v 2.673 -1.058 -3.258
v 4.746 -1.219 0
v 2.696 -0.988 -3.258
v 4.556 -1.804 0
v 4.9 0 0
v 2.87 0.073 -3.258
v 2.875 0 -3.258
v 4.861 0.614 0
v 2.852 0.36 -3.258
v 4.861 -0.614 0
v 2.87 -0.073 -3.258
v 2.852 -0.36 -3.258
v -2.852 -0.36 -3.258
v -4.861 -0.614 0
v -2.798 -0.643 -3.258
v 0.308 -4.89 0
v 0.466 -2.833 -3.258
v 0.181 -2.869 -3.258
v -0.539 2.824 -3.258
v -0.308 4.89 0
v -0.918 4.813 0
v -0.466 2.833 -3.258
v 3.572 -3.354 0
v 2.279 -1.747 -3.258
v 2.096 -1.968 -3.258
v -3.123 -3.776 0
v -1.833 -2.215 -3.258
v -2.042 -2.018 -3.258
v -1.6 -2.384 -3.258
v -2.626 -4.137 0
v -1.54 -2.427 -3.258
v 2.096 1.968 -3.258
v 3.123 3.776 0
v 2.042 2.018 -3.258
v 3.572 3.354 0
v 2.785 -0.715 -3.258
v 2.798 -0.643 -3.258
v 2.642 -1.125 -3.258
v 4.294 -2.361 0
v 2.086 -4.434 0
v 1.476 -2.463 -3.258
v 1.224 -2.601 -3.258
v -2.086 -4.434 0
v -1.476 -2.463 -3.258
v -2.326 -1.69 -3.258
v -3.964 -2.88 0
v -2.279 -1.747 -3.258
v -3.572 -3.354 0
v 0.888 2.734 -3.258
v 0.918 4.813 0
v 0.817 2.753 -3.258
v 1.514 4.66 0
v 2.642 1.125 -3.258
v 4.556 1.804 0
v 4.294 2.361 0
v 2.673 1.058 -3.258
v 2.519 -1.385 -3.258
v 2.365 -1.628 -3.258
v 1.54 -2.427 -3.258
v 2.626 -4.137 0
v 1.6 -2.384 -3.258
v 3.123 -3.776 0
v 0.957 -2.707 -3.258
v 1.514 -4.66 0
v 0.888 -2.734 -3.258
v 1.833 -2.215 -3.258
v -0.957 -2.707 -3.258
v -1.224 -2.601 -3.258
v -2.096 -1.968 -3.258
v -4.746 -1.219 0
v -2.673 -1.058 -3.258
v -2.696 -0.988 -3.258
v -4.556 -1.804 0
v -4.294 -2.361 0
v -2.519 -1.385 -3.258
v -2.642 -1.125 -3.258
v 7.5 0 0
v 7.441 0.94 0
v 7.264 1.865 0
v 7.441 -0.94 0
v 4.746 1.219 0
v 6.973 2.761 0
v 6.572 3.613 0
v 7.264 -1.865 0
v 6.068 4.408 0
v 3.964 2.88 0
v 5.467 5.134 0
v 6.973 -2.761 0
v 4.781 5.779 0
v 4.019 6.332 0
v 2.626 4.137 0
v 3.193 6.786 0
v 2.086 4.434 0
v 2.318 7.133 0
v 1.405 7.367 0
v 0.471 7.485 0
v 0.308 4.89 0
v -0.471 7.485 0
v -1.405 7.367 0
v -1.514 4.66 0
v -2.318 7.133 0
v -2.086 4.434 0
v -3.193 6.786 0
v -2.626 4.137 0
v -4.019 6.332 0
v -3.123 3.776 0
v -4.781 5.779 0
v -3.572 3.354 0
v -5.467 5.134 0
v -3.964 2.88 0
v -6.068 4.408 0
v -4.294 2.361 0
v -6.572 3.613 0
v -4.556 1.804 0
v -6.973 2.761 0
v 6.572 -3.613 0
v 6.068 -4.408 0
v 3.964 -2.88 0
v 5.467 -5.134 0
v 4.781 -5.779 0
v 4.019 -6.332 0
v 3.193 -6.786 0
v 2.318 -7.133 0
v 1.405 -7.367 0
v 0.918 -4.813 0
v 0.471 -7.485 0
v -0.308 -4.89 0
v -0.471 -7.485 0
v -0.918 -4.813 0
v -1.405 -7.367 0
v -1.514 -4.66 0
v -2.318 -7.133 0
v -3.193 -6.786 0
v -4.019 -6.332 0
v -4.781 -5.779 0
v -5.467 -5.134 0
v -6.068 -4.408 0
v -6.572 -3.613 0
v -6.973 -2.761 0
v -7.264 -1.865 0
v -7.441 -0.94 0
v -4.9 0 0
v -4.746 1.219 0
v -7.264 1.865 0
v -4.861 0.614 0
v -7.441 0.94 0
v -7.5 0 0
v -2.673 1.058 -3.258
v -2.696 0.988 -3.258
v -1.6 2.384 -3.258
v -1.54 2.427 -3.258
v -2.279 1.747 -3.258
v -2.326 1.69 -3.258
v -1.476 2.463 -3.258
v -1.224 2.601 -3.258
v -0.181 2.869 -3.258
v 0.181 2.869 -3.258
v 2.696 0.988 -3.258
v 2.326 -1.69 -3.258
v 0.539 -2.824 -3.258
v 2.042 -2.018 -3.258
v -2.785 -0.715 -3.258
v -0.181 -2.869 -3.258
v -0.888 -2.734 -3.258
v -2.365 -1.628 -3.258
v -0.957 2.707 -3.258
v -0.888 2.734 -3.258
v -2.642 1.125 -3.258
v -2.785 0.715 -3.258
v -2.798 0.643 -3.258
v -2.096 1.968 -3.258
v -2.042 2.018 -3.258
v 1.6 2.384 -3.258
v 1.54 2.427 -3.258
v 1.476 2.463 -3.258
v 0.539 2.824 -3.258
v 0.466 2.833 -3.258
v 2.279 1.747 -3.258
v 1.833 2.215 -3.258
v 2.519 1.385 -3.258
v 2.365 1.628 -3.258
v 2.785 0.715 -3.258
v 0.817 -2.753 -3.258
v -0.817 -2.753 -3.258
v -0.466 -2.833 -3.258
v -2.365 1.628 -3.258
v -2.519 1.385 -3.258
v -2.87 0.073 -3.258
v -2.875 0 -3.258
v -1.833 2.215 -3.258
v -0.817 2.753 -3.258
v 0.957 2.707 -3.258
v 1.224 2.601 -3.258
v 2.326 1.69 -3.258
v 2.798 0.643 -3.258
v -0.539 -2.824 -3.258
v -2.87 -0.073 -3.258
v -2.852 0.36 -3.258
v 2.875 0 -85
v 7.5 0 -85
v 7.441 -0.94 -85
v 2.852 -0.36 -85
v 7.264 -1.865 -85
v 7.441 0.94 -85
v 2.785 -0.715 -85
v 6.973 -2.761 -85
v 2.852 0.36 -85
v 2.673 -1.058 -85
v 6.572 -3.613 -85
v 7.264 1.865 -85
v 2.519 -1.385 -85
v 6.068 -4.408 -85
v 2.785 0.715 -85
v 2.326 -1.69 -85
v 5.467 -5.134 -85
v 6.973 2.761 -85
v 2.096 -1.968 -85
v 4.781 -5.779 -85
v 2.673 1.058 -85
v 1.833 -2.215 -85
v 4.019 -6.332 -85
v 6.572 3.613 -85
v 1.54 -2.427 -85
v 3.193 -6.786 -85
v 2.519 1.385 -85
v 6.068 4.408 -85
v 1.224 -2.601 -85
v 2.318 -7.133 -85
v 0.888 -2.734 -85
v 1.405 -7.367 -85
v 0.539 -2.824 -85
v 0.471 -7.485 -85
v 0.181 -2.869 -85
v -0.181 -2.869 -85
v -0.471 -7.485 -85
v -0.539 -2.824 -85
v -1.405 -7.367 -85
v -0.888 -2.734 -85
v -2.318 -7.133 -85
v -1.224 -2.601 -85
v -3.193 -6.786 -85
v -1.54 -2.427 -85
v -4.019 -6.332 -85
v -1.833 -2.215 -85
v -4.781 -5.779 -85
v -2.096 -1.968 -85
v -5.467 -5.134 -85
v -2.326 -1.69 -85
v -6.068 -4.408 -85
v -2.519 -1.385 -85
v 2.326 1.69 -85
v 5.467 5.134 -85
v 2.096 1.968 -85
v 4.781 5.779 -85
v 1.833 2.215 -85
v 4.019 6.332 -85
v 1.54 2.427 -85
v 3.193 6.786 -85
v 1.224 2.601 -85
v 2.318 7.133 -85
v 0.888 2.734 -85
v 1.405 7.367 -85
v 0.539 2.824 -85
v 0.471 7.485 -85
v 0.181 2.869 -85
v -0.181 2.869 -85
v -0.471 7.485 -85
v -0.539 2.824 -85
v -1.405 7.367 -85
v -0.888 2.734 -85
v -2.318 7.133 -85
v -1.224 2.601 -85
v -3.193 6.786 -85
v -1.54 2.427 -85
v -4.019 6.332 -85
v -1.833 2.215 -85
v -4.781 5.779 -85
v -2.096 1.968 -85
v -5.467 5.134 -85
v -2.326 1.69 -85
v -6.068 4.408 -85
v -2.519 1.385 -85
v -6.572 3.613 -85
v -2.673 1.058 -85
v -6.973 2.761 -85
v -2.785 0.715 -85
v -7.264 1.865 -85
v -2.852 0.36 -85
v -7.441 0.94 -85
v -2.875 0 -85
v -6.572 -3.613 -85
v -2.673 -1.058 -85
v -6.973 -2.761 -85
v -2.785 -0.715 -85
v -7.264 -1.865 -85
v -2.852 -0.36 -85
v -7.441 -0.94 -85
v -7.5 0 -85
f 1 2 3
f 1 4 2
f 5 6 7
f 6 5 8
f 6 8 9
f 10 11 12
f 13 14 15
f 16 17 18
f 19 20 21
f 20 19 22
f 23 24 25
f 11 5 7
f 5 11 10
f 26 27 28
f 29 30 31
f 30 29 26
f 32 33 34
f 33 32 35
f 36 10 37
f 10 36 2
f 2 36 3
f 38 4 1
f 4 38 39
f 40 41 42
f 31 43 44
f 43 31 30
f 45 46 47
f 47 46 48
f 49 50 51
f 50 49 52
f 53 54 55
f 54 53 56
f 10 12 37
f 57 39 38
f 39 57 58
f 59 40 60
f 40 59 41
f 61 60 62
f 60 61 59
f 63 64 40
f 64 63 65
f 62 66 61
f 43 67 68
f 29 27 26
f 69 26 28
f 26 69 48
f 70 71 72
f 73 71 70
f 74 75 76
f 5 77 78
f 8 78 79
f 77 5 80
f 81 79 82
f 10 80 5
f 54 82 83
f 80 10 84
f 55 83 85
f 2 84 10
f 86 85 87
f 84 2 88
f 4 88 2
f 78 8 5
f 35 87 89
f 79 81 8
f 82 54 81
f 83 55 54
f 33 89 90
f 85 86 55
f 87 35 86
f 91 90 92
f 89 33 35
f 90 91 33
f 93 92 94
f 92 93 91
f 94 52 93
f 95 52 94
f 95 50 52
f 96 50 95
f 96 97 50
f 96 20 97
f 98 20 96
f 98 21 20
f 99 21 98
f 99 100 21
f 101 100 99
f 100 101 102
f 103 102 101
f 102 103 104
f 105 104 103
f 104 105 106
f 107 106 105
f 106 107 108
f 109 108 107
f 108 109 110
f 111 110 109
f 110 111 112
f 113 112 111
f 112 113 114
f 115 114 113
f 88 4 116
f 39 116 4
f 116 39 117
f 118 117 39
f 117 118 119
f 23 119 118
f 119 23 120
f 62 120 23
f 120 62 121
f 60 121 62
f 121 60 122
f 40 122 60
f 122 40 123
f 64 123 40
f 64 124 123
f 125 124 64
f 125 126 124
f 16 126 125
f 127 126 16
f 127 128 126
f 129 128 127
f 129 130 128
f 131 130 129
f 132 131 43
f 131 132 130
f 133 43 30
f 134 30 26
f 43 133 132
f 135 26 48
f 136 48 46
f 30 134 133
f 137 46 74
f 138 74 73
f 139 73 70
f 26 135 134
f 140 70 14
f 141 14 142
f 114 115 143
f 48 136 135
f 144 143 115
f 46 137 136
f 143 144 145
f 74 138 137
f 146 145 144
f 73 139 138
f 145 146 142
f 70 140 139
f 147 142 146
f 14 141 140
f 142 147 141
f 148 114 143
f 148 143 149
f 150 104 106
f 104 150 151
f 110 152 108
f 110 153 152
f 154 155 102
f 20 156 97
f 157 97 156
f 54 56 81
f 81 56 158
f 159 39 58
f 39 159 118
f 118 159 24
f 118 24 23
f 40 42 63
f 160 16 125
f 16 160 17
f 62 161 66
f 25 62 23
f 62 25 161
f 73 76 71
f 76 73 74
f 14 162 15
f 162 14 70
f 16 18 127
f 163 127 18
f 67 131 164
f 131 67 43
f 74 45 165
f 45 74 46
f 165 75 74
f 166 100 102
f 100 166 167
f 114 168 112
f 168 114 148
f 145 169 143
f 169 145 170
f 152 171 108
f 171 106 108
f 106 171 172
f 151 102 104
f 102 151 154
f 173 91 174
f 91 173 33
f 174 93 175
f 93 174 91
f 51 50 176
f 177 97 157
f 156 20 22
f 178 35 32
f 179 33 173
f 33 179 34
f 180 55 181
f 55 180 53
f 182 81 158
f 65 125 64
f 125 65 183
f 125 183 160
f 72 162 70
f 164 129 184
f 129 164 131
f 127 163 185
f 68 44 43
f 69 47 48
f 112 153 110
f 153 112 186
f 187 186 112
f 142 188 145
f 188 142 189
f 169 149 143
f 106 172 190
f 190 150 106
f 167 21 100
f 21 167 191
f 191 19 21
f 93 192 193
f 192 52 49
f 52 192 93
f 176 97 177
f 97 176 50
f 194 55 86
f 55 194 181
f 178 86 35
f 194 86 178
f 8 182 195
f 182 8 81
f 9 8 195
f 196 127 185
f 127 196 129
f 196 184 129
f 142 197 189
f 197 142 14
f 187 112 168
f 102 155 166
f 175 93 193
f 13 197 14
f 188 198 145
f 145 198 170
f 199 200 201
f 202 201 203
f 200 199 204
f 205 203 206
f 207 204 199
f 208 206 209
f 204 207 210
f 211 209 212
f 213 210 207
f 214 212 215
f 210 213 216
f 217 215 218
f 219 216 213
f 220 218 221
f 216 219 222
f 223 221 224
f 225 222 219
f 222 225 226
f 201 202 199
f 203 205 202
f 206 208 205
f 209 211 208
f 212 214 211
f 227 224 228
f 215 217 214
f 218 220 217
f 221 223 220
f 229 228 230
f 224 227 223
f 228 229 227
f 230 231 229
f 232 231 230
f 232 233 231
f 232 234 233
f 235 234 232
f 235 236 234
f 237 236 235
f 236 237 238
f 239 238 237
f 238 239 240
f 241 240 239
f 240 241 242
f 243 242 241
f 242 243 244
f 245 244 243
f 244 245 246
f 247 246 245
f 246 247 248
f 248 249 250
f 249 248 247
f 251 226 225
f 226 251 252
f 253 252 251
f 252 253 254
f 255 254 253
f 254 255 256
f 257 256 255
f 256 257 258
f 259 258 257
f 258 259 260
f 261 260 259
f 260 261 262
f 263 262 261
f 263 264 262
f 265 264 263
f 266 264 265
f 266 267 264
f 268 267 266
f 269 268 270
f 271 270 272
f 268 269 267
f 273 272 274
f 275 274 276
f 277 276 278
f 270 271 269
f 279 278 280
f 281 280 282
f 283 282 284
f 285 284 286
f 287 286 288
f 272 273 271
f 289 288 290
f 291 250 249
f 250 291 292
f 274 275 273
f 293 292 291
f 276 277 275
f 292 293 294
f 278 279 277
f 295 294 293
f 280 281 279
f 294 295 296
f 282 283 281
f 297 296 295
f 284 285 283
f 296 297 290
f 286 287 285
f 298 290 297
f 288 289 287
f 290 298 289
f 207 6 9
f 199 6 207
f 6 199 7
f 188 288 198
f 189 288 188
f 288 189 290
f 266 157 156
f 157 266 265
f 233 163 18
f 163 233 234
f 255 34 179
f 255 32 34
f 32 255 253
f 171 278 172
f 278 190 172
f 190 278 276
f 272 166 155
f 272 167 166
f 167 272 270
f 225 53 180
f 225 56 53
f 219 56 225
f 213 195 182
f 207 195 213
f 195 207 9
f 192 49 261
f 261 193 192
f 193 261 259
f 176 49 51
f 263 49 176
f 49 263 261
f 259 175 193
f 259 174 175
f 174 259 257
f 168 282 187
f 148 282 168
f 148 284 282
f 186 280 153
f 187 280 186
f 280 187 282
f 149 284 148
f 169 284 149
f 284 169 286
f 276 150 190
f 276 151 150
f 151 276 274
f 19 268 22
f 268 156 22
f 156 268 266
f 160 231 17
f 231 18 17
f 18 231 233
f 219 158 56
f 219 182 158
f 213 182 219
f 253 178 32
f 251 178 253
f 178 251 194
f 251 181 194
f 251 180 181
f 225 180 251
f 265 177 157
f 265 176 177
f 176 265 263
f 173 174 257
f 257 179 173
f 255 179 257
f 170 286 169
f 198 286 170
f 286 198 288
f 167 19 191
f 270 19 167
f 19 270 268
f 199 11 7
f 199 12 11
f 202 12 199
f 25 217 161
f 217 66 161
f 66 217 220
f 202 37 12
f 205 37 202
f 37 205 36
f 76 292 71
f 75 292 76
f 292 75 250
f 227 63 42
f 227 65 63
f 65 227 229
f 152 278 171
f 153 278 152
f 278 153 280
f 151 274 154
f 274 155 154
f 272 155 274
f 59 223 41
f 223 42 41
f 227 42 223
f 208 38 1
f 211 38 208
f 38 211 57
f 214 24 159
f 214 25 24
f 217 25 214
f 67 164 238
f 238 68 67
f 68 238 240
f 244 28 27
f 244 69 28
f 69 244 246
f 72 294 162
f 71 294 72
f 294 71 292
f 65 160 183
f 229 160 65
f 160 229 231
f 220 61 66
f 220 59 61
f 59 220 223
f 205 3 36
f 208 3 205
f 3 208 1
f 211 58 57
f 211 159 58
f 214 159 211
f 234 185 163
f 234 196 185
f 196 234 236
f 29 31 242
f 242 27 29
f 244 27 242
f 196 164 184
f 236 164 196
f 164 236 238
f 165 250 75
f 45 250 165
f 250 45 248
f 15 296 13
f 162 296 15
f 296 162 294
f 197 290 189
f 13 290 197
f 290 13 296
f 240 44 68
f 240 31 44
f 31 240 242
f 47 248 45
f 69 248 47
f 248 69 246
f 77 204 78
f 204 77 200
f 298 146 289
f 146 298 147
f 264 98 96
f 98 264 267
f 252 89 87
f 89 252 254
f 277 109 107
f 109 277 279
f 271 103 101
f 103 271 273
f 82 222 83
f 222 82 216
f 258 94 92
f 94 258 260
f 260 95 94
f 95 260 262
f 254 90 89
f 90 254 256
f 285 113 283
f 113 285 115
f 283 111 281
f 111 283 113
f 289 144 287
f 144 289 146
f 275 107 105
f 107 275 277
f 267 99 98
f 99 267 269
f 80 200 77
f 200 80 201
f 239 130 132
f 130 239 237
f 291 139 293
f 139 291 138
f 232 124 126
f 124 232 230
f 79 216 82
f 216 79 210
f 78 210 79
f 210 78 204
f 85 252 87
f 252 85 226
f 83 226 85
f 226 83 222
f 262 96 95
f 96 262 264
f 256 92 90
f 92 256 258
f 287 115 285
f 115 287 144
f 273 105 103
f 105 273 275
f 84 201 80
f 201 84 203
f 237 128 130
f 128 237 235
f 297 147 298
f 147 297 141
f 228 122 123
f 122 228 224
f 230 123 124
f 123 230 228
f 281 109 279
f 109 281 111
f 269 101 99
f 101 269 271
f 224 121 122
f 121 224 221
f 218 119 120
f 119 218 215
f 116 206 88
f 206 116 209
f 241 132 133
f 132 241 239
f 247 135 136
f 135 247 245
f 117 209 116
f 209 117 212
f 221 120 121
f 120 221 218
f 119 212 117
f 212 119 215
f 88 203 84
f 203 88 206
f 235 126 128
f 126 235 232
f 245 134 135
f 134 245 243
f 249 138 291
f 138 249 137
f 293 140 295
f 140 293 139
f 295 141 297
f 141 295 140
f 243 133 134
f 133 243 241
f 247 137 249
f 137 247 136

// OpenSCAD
$fn = 50;


difference() {
	union() {
		translate(v = [0, 0, -85.0000000000]) {
			cylinder(h = 85, r = 7.5000000000);
		}
	}
	union() {
		translate(v = [0, 0, 0]) {
			rotate(a = [0, 0, 0]) {
				difference() {
					union() {
						translate(v = [0, 0, -3.7000000000]) {
							cylinder(h = 3.7000000000, r = 7.5000000000, r1 = 2.6000000000, r2 = 4.9000000000);
						}
						translate(v = [0, 0, -85.0000000000]) {
							cylinder(h = 85, r = 2.6000000000);
						}
						translate(v = [0, 0, -85.0000000000]) {
							cylinder(h = 85, r = 2.8750000000);
						}
						translate(v = [0, 0, -85.0000000000]) {
							cylinder(h = 85, r = 2.6000000000);
						}
					}
					union();
				}
			}
		}
	}
}
